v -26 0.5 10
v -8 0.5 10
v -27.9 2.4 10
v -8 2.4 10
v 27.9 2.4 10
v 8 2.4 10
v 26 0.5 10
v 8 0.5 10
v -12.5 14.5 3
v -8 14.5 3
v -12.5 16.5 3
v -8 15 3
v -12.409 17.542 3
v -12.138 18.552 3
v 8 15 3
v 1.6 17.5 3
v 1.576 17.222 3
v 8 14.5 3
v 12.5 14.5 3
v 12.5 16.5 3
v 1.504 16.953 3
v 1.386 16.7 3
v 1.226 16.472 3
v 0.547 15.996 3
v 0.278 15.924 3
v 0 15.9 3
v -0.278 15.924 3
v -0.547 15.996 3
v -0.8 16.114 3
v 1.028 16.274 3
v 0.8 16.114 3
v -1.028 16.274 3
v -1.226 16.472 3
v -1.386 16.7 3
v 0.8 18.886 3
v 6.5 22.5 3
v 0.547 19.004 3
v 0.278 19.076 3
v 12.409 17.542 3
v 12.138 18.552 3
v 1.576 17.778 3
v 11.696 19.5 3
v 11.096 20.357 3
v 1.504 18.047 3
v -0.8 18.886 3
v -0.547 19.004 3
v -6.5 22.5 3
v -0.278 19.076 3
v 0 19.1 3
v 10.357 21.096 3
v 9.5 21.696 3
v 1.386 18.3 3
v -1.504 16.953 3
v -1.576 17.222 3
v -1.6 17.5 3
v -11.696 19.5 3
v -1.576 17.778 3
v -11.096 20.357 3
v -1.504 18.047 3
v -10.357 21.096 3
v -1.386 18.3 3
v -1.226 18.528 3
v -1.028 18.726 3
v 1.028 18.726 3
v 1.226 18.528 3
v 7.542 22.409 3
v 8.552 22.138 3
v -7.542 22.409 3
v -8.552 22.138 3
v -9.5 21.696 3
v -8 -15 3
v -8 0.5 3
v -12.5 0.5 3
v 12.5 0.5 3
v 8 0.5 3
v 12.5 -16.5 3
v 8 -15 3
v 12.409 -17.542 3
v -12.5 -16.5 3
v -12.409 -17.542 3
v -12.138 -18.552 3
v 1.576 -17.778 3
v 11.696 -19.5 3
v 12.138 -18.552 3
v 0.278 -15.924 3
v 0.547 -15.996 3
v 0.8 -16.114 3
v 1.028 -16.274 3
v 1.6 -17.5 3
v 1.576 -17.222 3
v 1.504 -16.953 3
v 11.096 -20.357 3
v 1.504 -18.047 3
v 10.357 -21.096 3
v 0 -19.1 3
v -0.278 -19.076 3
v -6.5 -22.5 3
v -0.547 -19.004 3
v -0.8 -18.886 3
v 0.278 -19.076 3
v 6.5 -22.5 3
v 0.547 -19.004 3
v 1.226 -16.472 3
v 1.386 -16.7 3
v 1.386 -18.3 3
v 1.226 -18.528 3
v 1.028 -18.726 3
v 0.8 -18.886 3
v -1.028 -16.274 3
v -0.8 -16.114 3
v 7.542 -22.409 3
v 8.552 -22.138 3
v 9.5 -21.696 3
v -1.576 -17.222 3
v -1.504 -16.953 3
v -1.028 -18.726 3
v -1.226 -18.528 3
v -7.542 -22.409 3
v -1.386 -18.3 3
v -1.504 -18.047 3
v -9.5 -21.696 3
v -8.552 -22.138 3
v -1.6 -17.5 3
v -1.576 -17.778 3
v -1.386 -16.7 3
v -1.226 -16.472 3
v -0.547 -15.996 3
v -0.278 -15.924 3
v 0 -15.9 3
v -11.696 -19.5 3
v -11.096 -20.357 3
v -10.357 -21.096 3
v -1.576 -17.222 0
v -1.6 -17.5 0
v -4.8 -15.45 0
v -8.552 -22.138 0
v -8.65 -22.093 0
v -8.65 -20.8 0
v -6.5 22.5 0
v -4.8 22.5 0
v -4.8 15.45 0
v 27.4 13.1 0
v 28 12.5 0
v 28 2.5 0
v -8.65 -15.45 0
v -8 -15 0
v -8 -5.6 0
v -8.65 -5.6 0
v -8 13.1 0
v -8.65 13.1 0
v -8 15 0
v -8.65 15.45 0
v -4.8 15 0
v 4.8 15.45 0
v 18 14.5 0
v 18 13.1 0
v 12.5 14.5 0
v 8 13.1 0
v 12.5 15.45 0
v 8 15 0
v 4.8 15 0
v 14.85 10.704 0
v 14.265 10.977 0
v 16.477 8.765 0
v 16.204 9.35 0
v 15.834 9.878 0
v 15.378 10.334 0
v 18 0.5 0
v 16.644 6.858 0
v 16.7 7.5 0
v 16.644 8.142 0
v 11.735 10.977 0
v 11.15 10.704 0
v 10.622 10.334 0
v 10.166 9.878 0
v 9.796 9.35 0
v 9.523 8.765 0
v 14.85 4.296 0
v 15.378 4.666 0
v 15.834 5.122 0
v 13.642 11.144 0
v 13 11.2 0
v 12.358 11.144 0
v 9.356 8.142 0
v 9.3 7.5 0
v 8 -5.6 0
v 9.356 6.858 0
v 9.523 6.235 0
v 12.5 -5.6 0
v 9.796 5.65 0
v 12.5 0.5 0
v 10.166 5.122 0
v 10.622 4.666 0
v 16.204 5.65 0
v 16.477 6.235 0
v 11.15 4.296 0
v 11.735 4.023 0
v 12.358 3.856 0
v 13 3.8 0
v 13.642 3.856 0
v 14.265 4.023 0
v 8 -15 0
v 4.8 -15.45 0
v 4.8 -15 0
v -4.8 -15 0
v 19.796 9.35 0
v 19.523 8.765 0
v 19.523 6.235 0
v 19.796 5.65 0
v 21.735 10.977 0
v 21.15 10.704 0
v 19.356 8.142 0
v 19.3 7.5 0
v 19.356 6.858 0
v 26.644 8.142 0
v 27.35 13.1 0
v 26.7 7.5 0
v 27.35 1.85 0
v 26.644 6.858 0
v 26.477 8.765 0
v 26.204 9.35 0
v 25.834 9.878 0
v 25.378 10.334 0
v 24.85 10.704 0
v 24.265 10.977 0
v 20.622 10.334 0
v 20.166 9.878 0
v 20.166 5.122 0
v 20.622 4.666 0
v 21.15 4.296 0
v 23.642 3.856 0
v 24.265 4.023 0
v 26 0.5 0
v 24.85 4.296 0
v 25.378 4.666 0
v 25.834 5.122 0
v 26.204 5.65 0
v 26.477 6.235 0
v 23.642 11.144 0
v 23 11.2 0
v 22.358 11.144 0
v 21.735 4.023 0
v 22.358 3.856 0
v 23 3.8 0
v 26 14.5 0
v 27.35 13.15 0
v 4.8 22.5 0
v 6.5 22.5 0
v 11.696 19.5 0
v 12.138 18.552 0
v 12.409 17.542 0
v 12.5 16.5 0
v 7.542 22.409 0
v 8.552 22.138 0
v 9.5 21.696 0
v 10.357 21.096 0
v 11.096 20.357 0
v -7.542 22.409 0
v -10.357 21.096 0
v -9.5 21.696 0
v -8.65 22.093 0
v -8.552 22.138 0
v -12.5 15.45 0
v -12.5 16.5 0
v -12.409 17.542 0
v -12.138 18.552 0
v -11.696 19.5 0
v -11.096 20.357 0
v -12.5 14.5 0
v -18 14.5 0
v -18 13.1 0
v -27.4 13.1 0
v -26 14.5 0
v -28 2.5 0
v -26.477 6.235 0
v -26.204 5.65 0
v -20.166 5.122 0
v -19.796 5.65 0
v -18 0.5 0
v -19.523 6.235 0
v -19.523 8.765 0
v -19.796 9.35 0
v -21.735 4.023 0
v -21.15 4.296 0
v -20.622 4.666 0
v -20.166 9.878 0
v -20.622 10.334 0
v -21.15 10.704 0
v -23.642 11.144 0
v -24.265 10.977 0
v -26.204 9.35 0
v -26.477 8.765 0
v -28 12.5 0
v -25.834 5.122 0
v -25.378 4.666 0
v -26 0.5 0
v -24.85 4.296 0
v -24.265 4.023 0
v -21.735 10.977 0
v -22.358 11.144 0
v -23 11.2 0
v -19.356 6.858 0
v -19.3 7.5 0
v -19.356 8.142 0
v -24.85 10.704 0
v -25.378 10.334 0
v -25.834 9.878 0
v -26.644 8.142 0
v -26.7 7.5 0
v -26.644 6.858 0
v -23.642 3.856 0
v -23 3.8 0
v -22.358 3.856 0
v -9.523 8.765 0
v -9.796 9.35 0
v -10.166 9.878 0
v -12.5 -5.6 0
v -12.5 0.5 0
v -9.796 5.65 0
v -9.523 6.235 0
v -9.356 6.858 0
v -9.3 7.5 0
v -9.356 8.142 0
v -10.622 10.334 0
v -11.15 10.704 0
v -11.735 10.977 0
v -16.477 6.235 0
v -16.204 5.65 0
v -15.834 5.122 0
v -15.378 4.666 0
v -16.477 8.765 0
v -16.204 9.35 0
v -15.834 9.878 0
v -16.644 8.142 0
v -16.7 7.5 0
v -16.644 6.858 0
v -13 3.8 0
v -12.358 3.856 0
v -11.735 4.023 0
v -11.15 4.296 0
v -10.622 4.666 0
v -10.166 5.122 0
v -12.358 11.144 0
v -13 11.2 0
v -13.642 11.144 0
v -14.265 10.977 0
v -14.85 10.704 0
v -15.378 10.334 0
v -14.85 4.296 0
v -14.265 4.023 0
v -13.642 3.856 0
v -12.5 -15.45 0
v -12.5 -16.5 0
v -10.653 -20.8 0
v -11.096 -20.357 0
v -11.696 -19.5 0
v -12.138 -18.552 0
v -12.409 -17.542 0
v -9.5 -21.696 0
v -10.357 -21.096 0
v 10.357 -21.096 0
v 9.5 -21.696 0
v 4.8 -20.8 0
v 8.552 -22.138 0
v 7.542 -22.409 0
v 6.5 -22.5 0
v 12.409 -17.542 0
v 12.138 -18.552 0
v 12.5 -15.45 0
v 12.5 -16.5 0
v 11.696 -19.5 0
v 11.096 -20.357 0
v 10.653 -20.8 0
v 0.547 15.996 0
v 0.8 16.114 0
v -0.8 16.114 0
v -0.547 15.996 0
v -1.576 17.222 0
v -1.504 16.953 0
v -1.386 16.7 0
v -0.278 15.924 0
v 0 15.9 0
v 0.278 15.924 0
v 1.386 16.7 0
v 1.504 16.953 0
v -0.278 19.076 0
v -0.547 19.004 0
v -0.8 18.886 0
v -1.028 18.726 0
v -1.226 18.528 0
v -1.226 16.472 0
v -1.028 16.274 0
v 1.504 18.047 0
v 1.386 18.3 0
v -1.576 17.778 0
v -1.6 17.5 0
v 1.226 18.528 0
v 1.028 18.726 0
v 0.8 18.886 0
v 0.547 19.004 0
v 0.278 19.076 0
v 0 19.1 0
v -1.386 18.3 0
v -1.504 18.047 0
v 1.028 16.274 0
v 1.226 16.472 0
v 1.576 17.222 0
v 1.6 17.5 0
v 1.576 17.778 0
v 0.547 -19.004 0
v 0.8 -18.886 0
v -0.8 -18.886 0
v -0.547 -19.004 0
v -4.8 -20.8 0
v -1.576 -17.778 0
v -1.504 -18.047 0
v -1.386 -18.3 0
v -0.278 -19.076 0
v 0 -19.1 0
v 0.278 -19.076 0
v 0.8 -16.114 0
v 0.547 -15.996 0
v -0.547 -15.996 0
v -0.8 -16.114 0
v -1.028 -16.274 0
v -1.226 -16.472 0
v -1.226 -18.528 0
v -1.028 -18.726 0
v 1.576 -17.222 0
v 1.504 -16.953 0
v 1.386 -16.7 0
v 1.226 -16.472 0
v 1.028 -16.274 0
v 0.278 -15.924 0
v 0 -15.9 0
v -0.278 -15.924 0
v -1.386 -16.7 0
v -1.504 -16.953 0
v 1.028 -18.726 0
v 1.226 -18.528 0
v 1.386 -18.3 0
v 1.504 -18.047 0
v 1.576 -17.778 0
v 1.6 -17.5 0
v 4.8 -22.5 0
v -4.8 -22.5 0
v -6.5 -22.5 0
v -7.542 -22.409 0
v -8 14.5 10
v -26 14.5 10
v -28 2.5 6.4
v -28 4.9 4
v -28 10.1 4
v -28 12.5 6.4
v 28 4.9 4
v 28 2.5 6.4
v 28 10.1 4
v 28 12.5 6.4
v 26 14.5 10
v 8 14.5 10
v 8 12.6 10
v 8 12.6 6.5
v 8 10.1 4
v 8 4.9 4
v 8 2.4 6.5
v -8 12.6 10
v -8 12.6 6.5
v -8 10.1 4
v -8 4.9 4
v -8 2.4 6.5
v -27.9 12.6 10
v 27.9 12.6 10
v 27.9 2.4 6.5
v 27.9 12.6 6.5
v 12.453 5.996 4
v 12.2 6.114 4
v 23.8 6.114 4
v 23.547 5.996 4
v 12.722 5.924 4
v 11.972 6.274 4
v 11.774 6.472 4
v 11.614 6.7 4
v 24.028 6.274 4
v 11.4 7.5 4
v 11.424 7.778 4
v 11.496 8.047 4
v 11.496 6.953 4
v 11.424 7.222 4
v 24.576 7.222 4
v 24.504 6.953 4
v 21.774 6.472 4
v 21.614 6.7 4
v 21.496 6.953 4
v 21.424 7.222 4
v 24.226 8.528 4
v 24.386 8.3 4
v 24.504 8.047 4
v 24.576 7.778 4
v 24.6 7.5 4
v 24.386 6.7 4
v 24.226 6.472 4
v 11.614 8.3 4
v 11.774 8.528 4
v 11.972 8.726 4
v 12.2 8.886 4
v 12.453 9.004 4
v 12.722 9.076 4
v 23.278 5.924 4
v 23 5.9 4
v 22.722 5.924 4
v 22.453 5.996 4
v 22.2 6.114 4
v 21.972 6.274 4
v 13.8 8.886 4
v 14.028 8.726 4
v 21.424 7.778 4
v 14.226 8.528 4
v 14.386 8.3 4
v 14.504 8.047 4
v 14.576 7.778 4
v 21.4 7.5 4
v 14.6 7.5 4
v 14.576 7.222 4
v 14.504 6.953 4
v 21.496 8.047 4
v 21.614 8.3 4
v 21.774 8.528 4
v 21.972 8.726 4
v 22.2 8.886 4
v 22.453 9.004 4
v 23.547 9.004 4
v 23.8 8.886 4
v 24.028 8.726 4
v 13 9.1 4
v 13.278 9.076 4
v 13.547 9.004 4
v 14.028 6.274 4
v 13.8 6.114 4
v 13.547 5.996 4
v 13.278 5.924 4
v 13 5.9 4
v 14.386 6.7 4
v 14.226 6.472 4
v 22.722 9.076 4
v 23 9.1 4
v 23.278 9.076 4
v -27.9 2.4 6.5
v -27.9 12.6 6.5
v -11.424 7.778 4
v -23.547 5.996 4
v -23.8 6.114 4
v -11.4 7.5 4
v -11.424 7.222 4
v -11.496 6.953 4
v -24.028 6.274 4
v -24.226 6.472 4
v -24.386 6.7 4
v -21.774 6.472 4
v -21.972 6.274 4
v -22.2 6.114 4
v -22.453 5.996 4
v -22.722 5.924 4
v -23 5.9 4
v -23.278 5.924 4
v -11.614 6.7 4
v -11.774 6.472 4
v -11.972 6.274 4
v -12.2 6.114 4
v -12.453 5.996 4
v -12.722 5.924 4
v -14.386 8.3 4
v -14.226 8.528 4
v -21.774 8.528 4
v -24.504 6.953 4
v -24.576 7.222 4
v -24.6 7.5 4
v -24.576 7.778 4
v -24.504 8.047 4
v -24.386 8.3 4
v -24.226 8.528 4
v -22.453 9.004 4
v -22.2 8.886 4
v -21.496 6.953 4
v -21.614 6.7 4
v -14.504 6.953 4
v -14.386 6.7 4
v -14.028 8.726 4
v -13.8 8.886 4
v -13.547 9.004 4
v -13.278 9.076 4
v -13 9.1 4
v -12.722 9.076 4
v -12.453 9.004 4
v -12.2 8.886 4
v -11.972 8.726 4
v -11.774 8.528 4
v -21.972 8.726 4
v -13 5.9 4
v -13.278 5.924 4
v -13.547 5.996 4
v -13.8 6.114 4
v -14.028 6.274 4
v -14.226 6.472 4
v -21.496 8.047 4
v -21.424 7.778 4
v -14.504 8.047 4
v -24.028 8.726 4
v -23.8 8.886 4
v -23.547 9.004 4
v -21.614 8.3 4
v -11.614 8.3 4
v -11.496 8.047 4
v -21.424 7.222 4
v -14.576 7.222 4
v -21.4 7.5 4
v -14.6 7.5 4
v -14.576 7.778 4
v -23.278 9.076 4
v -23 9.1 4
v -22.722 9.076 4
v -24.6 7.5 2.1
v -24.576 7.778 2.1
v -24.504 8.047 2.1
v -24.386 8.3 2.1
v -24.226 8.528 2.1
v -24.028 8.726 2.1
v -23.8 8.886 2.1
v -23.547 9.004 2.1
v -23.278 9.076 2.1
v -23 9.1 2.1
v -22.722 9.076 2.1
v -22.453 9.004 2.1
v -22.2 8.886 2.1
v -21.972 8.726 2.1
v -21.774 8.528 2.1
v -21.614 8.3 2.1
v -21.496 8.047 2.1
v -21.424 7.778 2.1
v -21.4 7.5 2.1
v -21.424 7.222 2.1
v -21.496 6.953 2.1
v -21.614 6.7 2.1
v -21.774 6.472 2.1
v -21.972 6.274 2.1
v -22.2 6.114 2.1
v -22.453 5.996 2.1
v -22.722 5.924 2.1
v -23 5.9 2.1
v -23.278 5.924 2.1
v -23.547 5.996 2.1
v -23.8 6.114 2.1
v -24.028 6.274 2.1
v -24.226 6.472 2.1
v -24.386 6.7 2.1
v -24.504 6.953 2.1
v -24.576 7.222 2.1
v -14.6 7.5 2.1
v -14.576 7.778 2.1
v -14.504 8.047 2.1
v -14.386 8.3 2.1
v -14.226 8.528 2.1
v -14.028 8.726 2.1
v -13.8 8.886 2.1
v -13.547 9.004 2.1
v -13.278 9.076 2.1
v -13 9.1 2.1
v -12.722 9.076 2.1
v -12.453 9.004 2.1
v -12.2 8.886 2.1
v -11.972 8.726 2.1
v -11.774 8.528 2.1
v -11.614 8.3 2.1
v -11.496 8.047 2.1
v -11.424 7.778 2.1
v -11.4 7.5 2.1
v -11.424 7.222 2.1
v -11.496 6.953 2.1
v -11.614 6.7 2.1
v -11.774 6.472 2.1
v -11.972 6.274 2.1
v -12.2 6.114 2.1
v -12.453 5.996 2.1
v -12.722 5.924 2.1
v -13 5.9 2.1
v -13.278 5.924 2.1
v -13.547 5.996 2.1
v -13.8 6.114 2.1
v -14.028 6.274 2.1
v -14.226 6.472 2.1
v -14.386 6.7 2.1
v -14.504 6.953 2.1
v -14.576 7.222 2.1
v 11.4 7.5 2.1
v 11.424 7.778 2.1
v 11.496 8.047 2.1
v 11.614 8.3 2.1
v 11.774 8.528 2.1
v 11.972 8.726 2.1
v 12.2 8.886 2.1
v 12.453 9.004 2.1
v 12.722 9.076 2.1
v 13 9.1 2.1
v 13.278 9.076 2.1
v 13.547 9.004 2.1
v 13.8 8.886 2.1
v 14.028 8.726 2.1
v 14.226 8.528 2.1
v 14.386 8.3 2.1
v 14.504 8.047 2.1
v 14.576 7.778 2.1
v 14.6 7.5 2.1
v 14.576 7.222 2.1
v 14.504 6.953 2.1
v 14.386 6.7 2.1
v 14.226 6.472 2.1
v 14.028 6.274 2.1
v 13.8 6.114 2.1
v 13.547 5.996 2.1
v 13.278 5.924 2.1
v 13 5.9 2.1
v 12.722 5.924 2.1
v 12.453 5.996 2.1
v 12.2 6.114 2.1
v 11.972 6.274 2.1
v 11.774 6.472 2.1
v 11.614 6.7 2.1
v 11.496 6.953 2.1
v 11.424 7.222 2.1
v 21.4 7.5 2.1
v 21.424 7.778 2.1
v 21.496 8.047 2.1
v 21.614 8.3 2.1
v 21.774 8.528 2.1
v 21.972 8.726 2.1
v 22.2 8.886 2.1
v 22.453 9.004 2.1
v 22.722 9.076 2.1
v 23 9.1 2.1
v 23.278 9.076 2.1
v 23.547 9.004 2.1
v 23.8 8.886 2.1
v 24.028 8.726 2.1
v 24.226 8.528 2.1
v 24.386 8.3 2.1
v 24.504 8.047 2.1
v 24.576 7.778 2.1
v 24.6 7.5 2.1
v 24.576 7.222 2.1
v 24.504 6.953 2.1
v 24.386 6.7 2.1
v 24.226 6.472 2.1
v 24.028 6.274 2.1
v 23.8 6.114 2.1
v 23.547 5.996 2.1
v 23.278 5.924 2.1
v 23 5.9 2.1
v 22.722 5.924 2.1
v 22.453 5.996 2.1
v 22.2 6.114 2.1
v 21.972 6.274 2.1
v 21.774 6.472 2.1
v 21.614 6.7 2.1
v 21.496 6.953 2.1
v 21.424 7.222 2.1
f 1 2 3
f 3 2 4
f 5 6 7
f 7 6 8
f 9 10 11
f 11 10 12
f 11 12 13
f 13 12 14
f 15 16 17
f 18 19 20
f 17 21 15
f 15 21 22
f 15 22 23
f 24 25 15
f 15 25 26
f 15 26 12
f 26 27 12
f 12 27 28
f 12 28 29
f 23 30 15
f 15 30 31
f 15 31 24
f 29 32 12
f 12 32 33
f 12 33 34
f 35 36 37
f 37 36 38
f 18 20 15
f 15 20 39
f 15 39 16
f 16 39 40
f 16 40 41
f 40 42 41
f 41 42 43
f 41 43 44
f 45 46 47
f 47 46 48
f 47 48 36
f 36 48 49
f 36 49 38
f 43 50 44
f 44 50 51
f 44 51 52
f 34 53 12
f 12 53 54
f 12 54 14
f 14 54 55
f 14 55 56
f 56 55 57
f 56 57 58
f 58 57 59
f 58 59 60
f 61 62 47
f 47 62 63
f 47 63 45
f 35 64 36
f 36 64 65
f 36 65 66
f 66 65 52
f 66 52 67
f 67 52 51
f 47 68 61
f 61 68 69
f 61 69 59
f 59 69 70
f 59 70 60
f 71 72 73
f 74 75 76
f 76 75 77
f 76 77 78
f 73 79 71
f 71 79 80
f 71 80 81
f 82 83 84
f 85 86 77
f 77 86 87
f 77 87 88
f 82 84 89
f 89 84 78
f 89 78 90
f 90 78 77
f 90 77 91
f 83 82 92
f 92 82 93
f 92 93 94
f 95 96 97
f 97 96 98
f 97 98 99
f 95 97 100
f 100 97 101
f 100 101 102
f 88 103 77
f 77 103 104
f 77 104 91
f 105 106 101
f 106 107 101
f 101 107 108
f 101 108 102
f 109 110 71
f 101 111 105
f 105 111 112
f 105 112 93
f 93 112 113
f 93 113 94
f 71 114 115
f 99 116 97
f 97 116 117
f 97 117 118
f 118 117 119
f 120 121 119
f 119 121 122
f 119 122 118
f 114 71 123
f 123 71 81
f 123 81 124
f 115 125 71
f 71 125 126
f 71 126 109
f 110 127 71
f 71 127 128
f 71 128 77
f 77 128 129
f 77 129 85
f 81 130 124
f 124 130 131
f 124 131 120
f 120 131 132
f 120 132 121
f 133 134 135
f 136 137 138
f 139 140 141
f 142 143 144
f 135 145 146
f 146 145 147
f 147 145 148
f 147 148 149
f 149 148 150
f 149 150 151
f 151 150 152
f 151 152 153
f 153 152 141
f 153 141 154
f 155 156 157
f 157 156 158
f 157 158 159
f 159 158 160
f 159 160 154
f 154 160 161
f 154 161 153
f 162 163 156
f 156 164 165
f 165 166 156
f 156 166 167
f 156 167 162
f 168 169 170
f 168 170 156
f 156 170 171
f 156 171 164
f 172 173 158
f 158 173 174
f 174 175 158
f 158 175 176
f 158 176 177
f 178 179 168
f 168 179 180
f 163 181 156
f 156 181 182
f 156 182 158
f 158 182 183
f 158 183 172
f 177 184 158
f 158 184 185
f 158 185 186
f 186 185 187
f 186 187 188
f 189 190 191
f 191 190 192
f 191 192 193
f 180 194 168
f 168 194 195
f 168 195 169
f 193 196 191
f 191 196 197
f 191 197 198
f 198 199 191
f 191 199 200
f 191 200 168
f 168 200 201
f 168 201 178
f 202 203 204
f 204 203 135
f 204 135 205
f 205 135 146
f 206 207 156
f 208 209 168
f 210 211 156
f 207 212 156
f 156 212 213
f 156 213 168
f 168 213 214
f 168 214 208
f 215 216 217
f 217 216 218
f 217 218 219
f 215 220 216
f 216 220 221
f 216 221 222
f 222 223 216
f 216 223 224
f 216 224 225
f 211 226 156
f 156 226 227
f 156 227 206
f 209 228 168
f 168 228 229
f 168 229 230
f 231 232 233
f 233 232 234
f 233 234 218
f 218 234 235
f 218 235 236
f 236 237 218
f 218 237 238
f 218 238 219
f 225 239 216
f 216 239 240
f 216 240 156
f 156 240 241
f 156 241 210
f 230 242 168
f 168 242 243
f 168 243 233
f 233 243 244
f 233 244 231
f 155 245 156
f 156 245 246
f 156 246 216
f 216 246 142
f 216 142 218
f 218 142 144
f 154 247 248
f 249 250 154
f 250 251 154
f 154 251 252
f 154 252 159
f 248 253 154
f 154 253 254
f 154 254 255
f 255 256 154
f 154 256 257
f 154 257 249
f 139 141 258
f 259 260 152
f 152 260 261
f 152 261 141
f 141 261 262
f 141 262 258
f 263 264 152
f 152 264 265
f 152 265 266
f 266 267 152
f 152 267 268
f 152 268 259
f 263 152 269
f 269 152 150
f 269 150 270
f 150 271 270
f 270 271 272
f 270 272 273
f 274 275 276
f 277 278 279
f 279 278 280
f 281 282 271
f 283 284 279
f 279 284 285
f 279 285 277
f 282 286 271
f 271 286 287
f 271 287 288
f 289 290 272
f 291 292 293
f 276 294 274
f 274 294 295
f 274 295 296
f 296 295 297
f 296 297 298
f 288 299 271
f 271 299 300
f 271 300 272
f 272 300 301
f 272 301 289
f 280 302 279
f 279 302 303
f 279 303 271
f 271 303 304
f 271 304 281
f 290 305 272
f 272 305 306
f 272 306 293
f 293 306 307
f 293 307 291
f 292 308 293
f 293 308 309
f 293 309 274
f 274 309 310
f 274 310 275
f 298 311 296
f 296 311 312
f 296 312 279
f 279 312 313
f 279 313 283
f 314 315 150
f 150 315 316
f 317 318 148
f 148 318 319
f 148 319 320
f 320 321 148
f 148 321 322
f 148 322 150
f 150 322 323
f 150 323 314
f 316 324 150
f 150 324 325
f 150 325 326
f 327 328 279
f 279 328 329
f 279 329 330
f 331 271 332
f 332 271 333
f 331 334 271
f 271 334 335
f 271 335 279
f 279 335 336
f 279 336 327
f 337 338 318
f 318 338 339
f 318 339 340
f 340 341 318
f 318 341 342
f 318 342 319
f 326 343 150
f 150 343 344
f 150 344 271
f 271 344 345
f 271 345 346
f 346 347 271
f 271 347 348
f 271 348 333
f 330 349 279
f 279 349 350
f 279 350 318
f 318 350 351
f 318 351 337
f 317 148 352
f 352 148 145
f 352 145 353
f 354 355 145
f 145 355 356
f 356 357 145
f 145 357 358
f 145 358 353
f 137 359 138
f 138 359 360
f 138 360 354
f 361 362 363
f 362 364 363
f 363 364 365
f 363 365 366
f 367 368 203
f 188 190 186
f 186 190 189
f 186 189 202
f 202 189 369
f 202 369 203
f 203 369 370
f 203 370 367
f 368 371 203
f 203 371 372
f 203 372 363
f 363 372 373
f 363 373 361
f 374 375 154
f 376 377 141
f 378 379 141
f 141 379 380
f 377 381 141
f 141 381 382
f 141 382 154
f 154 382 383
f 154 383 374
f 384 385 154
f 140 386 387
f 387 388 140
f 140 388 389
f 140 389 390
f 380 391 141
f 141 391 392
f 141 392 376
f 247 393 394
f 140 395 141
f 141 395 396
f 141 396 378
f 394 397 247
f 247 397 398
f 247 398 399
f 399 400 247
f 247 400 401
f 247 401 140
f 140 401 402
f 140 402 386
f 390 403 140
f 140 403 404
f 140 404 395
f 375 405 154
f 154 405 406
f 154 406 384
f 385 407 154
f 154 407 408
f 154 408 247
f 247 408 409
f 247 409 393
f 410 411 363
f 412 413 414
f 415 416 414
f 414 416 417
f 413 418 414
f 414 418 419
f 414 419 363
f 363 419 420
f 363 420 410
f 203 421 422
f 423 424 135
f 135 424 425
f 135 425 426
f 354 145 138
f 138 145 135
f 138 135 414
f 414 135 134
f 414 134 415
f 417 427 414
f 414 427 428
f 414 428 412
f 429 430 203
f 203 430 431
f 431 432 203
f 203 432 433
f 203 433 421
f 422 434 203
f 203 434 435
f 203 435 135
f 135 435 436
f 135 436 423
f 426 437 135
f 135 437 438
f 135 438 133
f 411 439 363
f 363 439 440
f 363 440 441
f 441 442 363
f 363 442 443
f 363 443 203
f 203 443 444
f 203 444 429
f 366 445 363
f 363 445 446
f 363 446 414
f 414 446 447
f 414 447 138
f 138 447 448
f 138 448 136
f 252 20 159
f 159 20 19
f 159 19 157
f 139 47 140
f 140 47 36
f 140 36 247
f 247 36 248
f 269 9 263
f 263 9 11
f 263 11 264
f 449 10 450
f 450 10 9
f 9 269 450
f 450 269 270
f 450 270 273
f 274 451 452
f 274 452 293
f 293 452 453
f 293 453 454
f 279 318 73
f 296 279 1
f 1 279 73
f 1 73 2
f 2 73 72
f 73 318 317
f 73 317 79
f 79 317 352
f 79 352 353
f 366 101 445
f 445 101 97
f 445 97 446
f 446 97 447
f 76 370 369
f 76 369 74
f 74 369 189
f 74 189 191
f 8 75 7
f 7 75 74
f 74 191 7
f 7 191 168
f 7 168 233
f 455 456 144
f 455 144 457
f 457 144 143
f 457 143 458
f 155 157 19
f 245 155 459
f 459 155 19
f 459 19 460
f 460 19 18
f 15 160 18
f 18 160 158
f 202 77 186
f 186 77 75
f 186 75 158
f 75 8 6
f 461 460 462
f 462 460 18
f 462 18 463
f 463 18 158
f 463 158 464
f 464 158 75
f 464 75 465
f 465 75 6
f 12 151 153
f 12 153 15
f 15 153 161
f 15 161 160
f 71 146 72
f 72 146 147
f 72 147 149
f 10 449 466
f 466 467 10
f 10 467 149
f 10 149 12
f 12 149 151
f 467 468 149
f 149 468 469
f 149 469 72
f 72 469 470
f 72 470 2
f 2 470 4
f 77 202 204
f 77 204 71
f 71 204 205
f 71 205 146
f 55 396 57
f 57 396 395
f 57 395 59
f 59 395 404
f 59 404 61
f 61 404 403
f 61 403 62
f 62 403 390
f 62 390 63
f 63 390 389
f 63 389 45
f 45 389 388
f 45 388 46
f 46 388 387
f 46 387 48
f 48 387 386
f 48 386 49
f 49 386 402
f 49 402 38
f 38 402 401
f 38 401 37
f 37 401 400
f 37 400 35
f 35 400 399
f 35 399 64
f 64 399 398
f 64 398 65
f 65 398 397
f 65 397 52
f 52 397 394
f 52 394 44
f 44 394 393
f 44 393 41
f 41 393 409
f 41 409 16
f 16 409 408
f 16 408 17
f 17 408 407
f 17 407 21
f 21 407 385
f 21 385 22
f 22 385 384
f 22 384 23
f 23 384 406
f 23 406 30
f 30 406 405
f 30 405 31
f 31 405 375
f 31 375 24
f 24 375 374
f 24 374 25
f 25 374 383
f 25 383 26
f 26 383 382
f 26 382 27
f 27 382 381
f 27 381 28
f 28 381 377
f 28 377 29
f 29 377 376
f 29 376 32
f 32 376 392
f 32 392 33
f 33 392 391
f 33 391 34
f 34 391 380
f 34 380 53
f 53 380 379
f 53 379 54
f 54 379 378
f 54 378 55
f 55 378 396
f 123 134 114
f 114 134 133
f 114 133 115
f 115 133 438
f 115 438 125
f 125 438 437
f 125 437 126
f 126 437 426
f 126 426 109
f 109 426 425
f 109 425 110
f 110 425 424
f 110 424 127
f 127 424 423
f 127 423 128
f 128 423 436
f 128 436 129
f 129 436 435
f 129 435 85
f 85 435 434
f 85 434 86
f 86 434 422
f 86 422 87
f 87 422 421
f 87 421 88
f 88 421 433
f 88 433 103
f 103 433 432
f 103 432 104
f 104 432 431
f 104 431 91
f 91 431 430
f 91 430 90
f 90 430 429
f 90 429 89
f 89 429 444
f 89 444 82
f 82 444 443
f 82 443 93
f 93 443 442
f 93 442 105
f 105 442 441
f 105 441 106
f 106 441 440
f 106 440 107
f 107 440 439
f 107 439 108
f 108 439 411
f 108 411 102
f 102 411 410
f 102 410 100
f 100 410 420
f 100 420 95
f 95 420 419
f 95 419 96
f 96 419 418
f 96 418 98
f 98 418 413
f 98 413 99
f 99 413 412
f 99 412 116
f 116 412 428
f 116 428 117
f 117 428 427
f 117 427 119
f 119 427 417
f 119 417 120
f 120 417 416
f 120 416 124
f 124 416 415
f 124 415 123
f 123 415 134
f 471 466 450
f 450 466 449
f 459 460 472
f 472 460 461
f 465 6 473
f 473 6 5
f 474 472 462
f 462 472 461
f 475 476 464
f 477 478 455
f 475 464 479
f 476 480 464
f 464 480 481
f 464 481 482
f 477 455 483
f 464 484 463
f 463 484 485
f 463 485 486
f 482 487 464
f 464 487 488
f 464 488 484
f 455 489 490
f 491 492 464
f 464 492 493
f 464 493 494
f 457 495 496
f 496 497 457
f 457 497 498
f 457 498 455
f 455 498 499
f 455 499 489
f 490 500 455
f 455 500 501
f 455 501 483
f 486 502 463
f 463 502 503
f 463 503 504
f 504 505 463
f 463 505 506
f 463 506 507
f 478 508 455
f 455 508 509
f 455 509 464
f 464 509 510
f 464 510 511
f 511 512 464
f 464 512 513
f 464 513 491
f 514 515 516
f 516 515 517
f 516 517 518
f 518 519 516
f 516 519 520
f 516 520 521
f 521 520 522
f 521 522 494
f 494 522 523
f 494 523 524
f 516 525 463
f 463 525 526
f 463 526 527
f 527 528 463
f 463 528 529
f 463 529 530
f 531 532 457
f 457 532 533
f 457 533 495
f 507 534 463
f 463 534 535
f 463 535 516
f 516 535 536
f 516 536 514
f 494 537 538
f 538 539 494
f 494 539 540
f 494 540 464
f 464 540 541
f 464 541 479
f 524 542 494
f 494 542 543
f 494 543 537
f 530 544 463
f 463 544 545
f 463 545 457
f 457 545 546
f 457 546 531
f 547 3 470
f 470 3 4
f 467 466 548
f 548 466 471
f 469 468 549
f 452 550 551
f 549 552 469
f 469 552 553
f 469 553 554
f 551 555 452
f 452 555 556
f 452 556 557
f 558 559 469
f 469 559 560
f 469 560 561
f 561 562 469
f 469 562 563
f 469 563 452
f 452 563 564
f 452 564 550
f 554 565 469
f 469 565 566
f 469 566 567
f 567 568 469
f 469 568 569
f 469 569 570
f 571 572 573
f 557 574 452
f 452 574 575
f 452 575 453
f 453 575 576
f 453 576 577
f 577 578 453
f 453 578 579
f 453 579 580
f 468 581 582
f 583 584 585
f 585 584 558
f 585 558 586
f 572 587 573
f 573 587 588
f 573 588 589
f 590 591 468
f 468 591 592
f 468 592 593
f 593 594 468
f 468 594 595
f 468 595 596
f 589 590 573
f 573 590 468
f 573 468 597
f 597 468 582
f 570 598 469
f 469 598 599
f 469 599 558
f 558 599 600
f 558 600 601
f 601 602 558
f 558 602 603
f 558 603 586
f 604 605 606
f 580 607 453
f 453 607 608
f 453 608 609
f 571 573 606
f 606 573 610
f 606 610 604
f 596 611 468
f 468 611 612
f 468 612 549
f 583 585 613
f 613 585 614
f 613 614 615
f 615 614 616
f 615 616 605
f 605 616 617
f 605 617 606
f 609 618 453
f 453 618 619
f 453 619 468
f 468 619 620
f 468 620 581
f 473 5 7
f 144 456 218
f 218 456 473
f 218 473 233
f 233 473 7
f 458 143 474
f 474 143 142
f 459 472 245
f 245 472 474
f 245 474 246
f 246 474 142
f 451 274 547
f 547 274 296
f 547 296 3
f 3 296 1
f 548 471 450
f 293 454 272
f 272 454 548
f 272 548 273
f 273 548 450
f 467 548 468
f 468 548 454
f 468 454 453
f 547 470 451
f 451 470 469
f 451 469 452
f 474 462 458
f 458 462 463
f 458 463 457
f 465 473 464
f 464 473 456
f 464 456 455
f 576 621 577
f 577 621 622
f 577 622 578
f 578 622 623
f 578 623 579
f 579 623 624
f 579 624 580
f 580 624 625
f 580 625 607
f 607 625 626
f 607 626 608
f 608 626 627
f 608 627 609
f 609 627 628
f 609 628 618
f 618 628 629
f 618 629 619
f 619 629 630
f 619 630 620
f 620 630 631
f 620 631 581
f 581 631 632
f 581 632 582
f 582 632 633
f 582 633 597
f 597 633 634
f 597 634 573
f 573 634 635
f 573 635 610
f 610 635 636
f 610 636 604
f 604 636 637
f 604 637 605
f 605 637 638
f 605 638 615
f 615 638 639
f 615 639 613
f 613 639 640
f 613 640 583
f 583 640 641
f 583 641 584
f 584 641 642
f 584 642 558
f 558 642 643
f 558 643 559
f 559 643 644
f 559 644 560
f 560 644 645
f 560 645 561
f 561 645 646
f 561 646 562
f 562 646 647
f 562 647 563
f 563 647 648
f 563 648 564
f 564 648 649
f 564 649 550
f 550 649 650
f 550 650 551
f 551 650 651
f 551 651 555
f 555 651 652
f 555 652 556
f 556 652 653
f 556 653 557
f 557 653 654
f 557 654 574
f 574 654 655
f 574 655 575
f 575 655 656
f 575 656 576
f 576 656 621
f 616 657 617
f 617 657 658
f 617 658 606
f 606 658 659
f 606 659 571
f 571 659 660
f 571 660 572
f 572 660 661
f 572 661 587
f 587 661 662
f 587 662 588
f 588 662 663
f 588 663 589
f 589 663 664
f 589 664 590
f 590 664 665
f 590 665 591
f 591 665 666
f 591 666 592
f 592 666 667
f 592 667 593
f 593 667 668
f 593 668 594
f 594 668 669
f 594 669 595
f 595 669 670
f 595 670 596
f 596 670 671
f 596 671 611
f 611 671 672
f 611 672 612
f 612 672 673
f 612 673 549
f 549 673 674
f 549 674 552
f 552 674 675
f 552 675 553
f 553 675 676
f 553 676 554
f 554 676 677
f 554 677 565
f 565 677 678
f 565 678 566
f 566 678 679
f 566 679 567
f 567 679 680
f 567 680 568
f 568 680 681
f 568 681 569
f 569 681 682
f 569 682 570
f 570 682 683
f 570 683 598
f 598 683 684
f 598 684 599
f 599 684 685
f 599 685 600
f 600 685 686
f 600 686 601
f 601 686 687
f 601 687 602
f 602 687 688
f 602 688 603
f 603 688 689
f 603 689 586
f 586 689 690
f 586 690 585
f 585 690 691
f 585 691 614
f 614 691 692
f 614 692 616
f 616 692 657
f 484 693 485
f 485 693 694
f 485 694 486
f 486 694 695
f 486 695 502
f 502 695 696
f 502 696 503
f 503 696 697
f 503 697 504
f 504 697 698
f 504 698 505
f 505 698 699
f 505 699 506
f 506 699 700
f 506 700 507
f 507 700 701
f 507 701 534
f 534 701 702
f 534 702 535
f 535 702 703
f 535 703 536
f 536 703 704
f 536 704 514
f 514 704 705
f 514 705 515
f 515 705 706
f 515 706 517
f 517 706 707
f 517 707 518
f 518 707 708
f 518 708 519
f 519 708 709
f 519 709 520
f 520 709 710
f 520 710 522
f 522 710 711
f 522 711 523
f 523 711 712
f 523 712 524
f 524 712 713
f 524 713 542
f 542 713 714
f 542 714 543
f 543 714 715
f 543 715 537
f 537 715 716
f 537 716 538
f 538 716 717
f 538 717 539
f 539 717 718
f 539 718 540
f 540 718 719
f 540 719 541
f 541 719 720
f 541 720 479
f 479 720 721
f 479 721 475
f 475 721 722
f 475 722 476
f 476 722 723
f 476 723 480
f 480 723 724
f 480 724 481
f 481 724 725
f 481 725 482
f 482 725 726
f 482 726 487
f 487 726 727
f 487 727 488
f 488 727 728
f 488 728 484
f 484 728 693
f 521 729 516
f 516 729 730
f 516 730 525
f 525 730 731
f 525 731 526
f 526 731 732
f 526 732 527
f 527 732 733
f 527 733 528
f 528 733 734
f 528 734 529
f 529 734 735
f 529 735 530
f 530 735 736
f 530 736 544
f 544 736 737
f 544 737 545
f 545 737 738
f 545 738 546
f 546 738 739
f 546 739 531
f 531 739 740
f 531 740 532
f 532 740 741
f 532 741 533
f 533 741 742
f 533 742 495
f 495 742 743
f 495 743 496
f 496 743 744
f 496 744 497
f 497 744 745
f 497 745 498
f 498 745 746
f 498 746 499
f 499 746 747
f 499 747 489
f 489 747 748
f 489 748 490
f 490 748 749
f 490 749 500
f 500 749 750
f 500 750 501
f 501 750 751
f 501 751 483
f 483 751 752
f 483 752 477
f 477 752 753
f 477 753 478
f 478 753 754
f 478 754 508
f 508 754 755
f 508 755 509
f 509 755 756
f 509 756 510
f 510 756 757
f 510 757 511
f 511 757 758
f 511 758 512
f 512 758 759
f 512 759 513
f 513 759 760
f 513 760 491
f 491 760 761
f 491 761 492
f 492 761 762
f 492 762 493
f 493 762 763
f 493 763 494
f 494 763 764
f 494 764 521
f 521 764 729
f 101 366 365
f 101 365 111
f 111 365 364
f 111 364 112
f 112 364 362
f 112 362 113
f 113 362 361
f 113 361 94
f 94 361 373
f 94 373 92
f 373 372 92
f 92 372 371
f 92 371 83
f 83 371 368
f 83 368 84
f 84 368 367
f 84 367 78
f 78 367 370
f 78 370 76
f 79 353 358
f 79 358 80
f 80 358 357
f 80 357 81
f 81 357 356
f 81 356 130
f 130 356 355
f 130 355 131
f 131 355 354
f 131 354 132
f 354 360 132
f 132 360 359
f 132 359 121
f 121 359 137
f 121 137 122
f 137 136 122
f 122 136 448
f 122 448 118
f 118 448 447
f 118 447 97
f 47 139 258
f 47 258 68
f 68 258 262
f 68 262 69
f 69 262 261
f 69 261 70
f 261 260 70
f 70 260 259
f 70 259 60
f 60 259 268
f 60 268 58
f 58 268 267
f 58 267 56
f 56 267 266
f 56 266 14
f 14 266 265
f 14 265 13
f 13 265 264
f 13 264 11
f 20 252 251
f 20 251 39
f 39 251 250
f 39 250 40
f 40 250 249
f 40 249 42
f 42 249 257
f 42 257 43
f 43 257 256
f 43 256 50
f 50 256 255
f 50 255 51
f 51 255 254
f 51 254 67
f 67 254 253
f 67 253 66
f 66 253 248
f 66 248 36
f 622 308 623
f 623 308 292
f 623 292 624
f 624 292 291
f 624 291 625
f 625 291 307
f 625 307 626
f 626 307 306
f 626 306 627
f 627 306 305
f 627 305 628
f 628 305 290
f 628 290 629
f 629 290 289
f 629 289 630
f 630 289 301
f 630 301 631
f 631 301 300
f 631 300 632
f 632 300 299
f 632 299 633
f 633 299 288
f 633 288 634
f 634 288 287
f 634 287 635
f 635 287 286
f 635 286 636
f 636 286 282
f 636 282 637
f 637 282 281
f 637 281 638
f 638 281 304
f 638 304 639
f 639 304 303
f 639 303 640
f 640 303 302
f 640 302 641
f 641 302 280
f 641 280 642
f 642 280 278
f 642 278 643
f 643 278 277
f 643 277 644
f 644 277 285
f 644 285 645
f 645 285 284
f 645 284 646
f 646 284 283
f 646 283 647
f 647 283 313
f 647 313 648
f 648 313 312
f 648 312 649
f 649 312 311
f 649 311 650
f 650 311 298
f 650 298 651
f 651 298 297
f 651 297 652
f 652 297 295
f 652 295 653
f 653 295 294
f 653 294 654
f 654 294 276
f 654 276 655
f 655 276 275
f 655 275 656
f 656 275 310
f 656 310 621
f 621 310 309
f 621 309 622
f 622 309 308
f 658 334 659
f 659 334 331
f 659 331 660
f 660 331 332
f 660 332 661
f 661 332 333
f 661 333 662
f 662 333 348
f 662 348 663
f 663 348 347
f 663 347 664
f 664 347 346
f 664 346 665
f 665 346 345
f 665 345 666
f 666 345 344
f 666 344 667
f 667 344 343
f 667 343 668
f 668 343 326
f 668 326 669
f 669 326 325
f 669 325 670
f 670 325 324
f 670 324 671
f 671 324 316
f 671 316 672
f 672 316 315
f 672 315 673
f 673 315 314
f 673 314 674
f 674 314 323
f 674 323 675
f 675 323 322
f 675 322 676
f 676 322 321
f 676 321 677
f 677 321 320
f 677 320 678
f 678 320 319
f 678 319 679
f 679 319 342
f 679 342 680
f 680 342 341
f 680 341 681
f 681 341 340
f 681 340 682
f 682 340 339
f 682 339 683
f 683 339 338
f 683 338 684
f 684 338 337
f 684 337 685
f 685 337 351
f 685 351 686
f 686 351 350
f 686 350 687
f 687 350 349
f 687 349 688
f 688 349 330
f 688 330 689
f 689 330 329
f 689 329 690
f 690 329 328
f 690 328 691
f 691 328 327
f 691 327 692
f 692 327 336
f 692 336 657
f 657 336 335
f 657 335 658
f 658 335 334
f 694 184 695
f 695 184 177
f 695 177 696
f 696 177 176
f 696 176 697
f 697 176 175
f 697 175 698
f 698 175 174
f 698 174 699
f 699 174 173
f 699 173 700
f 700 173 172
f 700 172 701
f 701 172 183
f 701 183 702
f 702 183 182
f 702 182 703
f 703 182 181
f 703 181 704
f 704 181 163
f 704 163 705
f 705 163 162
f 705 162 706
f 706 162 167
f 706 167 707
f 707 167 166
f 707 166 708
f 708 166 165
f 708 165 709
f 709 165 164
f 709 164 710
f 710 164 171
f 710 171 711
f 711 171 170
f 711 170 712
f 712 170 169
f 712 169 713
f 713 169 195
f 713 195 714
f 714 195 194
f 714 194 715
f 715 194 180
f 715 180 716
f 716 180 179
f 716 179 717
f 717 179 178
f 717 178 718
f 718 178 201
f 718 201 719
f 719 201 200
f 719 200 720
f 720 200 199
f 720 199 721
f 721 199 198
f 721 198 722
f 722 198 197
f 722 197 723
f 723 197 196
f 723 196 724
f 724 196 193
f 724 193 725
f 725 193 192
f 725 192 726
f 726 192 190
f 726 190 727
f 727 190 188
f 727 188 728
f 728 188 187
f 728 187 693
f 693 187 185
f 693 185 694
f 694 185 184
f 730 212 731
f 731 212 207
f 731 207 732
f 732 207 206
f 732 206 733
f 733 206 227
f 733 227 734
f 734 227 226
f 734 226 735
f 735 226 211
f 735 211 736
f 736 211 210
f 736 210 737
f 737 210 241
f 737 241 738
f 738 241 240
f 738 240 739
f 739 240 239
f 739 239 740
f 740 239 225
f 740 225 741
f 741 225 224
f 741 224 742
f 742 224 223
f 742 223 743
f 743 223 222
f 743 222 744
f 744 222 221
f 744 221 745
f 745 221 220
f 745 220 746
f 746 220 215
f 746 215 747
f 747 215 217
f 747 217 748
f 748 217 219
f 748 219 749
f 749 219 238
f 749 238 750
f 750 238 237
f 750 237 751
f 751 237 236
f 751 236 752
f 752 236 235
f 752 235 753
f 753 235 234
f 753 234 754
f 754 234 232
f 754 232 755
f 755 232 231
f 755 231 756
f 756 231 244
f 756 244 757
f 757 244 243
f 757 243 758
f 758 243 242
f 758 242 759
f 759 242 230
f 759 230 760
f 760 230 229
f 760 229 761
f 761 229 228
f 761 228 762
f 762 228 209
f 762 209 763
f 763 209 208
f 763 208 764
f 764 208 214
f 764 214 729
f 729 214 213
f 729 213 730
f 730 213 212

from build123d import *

# Parameters (mm, degrees)
ESQUISSE1_R             = 1.6
ESQUISSE1_W             = 16
ESQUISSE1_H             = 30
BOSS_EXTRU_1_DEPTH      = 3
ESQUISSE2_W             = 20
ESQUISSE2_H             = 14
BOSS_EXTRU_2_DEPTH      = 7
ESQUISSE3_W             = 9.671871363
ESQUISSE3_H             = 10.2
ENL_V_MAT_EXTRU_1_DEPTH = 62.173932357
CHANFREIN1_SIZE         = 2
CHANFREIN2_SIZE         = 2.5
ESQUISSE4_R             = 1.6
ENL_V_MAT_EXTRU_2_DEPTH = 7
CONG_1_R                = 6
CHANFREIN3_SIZE         = 2.1


with BuildPart() as part:
    # Esquisse1 → Boss.-Extru.1 (new body)
    with BuildSketch(Plane.XY):
        Polygon((-12.5, 14.5), (-12.5, 22.5), (12.5, 22.5), (12.5, 14.5), (28, 14.5), (28, 0.5), (12.5, 0.5), (12.5, -22.5), (-12.5, -22.5), (-12.5, 0.5), (-28, 0.5), (-28, 14.5), align=None)
        with Locations((0, 17.5)):
            Circle(ESQUISSE1_R, mode=Mode.SUBTRACT)
        with Locations((0, -17.5)):
            Circle(ESQUISSE1_R, mode=Mode.SUBTRACT)
        Rectangle(ESQUISSE1_W, ESQUISSE1_H, mode=Mode.SUBTRACT)
    extrude(amount=BOSS_EXTRU_1_DEPTH)

    # Esquisse2 → Boss.-Extru.2 (add)
    with BuildSketch(Plane.XY.offset(3)):
        with Locations((-18, 7.5)):
            Rectangle(ESQUISSE2_W, ESQUISSE2_H)
        with Locations((18, 7.5)):
            Rectangle(ESQUISSE2_W, ESQUISSE2_H)
    extrude(amount=BOSS_EXTRU_2_DEPTH)

    # Esquisse3 → Enlèv. mat.-Extru.1 (cut, through all)
    with BuildSketch(Plane.ZY.offset(28)):
        with Locations((8.835935682, 7.5)):
            Rectangle(ESQUISSE3_W, ESQUISSE3_H)
    extrude(amount=-ENL_V_MAT_EXTRU_1_DEPTH, mode=Mode.SUBTRACT)

    # Chanfrein1
    chanfrein1_edges = [part.edges().sort_by_distance(p)[0] for p in [
        (28, 0.5, 5),
        (28, 14.5, 5),
        (-28, 0.5, 5),
        (-28, 14.5, 5),
    ]]
    chamfer(chanfrein1_edges, length=CHANFREIN1_SIZE)

    # Chanfrein2
    chanfrein2_edges = [part.edges().sort_by_distance(p)[0] for p in [
        (-17.95, 12.6, 4),
        (-17.95, 2.4, 4),
        (17.95, 12.6, 4),
        (17.95, 2.4, 4),
    ]]
    chamfer(chanfrein2_edges, length=CHANFREIN2_SIZE)

    # Esquisse4 → Enlèv. mat.-Extru.2 (cut)
    with BuildSketch(Plane(origin=(0, 0, 0), x_dir=(-1, 0, 0), z_dir=(0, 0, -1))):
        with Locations((23, 7.5)):
            Circle(ESQUISSE4_R)
        with Locations((13, 7.5)):
            Circle(ESQUISSE4_R)
        with Locations((-13, 7.5)):
            Circle(ESQUISSE4_R)
        with Locations((-23, 7.5)):
            Circle(ESQUISSE4_R)
    extrude(amount=-ENL_V_MAT_EXTRU_2_DEPTH, mode=Mode.SUBTRACT)

    # Congé1
    cong_1_edges = [part.edges().sort_by_distance(p)[0] for p in [
        (12.5, -22.5, 1.5),
        (-12.5, -22.5, 1.5),
        (-12.5, 22.5, 1.5),
        (12.5, 22.5, 1.5),
    ]]
    fillet(cong_1_edges, radius=CONG_1_R)

    # Chanfrein3
    chanfrein3_edges = [part.edges().sort_by_distance(p)[0] for p in [
        (-21.4, 7.5, 0),
        (-11.4, 7.5, 0),
        (14.6, 7.5, 0),
        (24.6, 7.5, 0),
    ]]
    chamfer(chanfrein3_edges, length=CHANFREIN3_SIZE)


solid = part.part
